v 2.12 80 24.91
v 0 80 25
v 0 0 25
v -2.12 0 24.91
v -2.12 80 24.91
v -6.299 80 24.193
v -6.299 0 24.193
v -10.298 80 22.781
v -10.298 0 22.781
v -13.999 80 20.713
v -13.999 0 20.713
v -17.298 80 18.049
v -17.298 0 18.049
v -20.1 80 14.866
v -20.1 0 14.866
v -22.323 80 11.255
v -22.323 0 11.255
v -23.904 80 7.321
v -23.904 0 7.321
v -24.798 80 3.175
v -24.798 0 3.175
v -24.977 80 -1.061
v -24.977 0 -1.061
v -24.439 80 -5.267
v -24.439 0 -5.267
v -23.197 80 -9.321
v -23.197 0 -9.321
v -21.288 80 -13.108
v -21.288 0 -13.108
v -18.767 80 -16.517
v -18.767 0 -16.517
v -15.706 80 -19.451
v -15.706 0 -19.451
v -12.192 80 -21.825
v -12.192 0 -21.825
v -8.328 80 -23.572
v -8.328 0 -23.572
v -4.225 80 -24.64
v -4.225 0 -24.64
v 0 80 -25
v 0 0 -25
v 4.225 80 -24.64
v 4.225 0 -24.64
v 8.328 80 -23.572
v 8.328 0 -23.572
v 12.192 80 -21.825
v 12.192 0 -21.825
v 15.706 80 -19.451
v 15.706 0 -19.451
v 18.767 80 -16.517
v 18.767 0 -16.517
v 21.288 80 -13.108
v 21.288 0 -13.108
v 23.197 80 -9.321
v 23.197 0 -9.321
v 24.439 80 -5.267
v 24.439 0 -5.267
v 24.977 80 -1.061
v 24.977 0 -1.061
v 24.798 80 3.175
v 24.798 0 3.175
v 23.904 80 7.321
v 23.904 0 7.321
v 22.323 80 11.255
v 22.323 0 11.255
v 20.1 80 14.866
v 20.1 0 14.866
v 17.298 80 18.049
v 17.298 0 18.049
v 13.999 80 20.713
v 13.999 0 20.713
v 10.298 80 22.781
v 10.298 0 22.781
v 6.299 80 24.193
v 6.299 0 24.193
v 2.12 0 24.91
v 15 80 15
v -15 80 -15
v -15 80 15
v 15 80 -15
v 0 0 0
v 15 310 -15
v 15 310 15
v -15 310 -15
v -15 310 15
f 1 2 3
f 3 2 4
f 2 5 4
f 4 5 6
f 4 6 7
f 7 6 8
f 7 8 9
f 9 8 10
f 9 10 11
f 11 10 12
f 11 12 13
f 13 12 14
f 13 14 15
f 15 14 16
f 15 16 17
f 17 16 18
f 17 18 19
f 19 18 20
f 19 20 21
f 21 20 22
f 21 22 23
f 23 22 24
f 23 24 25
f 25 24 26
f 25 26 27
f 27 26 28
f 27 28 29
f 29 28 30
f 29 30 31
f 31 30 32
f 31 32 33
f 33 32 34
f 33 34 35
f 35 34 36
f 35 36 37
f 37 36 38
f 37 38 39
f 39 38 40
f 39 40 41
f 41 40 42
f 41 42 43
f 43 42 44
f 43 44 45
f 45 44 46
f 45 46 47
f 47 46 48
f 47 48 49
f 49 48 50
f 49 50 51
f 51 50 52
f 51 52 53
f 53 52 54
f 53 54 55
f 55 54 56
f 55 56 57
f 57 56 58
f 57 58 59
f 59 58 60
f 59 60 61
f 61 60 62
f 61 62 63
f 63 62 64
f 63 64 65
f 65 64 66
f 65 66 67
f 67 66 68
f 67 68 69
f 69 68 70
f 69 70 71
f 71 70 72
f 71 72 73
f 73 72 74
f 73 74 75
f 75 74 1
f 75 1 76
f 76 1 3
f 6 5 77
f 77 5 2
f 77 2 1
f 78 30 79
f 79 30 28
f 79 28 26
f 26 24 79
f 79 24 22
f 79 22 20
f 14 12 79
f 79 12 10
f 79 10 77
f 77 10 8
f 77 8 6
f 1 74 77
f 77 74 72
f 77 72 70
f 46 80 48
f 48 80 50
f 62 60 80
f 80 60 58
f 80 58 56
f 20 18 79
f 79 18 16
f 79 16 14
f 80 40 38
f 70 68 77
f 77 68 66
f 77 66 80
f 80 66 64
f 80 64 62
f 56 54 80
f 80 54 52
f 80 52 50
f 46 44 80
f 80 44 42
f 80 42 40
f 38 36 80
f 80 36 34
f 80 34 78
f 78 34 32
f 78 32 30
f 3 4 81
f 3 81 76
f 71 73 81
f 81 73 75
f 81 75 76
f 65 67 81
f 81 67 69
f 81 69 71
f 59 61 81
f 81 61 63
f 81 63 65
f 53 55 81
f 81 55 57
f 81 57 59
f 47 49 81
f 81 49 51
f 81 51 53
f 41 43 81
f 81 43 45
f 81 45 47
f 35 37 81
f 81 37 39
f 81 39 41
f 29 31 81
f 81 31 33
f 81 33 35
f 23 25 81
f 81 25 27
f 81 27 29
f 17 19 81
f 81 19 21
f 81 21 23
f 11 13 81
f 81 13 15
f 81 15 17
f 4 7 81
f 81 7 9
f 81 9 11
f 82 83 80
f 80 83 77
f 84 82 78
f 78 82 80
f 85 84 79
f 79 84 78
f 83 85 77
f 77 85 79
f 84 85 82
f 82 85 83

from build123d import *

# Parameters (mm, degrees)
SKETCH_1_R      = 25
EXTRUDE_1_DEPTH = 80
SKETCH_2_W      = 30
SKETCH_2_H      = 30
EXTRUDE_2_DEPTH = 230


with BuildPart() as part:
    # 草图1 → 凸台-拉伸1 (new body)
    with BuildSketch(Plane(origin=(0, 0, 0), x_dir=(1, 0, 0), z_dir=(0, 1, 0))):
        Circle(SKETCH_1_R)
    extrude(amount=EXTRUDE_1_DEPTH)

    # 草图2 → 凸台-拉伸2 (add)
    with BuildSketch(Plane(origin=(0, 80, 0), x_dir=(1, 0, 0), z_dir=(0, 1, 0))):
        Rectangle(SKETCH_2_W, SKETCH_2_H)
    extrude(amount=EXTRUDE_2_DEPTH)


solid = part.part
